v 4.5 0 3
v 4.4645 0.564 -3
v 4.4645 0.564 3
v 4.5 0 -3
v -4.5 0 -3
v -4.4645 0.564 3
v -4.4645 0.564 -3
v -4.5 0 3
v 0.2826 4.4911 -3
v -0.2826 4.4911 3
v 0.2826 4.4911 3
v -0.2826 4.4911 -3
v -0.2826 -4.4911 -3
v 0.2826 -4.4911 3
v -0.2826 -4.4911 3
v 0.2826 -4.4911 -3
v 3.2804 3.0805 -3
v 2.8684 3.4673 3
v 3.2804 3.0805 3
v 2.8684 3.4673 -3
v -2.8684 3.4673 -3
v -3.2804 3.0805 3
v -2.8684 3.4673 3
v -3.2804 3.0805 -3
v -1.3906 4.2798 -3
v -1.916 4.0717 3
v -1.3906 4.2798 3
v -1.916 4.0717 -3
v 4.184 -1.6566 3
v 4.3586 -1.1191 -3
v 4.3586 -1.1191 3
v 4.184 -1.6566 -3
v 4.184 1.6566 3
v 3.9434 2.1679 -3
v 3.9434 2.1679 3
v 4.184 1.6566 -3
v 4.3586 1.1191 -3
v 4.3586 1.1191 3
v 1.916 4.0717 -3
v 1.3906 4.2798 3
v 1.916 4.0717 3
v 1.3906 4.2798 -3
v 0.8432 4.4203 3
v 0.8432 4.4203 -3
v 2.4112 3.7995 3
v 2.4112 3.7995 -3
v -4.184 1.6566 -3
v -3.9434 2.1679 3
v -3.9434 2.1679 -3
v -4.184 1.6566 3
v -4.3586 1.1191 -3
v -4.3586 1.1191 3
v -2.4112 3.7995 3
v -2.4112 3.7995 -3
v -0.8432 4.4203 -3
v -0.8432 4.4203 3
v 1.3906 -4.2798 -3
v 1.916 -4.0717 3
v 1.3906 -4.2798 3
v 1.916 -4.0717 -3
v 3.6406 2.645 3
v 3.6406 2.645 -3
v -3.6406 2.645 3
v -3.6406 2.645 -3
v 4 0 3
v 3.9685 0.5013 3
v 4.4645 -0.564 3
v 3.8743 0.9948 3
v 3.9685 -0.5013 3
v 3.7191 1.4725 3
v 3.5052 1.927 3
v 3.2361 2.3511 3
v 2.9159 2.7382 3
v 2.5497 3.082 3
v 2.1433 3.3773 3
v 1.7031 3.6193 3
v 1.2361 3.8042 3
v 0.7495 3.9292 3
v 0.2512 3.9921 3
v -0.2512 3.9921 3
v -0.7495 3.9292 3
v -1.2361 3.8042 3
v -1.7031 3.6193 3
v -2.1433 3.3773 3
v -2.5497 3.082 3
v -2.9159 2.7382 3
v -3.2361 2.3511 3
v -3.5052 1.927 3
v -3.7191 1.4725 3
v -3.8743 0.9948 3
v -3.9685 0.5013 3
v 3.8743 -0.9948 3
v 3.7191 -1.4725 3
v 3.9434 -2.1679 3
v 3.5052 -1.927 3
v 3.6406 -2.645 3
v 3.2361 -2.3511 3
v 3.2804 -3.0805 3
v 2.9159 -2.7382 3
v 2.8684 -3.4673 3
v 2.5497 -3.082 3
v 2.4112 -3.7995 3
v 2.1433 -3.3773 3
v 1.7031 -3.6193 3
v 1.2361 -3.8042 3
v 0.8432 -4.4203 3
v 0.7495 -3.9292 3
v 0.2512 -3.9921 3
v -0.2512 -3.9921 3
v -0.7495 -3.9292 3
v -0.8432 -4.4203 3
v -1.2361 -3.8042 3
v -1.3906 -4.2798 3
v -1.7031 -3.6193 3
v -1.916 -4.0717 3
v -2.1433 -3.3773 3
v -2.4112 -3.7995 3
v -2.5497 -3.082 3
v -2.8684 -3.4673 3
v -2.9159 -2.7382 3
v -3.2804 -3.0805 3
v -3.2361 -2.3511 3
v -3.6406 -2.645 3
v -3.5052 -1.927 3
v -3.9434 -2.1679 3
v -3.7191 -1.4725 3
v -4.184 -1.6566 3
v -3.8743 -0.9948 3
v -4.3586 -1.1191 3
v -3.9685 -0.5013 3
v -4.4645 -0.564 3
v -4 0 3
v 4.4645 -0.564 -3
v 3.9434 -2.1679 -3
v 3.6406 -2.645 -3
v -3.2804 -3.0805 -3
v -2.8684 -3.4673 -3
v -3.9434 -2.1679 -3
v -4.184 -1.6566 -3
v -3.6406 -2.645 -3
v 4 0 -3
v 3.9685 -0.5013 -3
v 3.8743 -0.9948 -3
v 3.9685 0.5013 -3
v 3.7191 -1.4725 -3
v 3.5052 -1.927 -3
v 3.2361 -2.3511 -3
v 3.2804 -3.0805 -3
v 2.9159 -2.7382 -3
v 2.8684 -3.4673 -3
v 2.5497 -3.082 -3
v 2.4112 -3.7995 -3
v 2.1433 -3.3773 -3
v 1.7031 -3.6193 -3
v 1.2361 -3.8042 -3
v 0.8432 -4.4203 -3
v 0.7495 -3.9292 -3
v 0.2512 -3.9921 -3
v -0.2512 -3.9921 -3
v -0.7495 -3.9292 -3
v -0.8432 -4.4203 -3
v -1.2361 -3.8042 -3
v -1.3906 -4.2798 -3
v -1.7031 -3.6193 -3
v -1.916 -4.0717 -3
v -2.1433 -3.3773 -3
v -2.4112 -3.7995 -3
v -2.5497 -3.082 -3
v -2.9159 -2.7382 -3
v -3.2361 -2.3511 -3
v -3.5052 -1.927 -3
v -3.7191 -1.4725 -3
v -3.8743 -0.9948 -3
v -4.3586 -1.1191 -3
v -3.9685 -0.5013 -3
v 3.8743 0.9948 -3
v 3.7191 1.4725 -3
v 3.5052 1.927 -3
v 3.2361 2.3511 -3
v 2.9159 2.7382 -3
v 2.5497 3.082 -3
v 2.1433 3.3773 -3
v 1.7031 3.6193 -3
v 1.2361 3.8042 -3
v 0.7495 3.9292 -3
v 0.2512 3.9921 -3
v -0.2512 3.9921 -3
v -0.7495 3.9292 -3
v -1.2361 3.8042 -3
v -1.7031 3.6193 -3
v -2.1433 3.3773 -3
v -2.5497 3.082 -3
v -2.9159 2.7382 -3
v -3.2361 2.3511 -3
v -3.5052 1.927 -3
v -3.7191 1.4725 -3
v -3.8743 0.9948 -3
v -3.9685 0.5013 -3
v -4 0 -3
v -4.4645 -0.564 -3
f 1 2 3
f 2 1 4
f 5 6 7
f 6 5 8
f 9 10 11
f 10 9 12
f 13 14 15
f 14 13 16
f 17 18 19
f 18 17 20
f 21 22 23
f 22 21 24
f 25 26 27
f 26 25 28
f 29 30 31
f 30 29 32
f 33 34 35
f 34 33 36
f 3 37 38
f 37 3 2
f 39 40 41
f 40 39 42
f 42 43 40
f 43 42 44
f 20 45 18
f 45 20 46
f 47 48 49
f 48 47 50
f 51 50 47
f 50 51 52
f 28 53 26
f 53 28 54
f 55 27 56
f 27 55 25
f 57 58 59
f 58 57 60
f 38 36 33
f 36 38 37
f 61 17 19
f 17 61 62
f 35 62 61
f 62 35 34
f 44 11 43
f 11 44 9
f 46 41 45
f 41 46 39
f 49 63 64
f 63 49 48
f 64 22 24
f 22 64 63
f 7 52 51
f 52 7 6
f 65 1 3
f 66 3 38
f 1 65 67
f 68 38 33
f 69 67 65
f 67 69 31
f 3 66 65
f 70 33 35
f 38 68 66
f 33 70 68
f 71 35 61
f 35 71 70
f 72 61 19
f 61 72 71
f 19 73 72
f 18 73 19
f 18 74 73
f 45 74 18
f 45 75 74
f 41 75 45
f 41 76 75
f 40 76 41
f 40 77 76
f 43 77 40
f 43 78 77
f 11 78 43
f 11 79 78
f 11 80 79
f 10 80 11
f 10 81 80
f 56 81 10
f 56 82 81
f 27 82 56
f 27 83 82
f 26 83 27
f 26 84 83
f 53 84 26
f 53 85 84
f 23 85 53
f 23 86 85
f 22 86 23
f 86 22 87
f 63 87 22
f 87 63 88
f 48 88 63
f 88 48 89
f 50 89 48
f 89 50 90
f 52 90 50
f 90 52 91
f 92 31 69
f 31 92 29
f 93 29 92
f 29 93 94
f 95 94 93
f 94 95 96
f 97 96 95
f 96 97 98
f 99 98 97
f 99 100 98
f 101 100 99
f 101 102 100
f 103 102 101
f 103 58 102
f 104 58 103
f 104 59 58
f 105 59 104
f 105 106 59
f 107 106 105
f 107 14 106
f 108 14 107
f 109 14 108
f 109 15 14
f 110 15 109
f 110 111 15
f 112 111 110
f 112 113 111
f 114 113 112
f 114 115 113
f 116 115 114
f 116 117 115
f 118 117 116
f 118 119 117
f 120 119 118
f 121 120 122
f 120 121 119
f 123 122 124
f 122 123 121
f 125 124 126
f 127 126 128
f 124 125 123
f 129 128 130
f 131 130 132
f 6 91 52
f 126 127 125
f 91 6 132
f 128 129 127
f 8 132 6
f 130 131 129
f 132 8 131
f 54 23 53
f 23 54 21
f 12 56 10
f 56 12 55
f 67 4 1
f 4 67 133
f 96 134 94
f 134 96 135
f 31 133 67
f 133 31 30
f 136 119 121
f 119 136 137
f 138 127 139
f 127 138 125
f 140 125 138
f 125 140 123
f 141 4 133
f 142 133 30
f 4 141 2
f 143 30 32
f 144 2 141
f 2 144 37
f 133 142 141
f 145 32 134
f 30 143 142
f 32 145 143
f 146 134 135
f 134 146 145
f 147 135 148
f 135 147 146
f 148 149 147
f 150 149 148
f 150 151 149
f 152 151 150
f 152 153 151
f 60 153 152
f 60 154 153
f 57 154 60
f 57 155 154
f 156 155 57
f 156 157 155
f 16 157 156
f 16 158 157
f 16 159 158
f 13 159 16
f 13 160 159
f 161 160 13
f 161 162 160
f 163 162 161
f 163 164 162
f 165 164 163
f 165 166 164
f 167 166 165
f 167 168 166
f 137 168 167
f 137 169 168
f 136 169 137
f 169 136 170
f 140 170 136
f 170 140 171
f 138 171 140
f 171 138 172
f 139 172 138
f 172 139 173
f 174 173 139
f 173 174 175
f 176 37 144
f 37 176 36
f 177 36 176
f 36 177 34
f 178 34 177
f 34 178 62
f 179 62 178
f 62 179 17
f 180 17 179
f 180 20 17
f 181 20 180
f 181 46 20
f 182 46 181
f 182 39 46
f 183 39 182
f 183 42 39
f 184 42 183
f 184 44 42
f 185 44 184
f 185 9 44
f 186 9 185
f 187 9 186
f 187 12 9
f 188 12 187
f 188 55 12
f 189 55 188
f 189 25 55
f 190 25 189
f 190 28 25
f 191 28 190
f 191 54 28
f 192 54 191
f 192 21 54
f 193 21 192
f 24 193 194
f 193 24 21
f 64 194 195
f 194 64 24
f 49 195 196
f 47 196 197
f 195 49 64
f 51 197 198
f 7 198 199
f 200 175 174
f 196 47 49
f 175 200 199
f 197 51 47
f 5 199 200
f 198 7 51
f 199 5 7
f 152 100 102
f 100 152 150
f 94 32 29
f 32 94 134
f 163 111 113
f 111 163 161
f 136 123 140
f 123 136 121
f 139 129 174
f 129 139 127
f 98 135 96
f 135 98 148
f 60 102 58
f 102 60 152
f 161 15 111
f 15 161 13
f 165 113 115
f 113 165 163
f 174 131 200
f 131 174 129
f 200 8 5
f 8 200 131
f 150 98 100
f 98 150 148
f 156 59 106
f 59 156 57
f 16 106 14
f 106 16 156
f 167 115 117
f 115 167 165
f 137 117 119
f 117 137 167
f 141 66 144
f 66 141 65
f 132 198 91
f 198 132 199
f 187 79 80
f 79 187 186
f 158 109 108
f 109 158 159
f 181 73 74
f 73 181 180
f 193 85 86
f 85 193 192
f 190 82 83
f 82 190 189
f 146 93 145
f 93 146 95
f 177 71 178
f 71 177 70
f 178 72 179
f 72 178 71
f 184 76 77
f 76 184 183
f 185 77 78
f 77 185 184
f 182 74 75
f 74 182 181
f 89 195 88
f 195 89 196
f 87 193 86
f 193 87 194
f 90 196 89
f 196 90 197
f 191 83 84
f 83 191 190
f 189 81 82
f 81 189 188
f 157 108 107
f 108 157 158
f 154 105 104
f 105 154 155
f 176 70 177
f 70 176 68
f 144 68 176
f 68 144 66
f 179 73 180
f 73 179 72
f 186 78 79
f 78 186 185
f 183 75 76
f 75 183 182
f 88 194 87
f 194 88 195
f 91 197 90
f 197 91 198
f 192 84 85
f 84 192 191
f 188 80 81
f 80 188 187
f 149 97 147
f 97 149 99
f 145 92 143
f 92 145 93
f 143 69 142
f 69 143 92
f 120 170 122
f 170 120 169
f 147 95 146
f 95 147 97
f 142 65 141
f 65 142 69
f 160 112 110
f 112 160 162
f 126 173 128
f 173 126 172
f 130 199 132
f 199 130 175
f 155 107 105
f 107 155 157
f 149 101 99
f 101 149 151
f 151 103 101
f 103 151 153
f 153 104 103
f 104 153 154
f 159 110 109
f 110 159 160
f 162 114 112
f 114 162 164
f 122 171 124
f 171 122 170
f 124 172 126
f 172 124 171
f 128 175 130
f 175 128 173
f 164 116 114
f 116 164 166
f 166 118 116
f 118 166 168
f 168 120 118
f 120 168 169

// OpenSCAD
$fn = 50;


difference() {
	union() {
		translate(v = [0, 0, -3.0000000000]) {
			cylinder(h = 6, r = 4.5000000000);
		}
	}
	union() {
		translate(v = [0, 0, -100.0000000000]) {
			cylinder(h = 200, r = 4);
		}
	}
}
